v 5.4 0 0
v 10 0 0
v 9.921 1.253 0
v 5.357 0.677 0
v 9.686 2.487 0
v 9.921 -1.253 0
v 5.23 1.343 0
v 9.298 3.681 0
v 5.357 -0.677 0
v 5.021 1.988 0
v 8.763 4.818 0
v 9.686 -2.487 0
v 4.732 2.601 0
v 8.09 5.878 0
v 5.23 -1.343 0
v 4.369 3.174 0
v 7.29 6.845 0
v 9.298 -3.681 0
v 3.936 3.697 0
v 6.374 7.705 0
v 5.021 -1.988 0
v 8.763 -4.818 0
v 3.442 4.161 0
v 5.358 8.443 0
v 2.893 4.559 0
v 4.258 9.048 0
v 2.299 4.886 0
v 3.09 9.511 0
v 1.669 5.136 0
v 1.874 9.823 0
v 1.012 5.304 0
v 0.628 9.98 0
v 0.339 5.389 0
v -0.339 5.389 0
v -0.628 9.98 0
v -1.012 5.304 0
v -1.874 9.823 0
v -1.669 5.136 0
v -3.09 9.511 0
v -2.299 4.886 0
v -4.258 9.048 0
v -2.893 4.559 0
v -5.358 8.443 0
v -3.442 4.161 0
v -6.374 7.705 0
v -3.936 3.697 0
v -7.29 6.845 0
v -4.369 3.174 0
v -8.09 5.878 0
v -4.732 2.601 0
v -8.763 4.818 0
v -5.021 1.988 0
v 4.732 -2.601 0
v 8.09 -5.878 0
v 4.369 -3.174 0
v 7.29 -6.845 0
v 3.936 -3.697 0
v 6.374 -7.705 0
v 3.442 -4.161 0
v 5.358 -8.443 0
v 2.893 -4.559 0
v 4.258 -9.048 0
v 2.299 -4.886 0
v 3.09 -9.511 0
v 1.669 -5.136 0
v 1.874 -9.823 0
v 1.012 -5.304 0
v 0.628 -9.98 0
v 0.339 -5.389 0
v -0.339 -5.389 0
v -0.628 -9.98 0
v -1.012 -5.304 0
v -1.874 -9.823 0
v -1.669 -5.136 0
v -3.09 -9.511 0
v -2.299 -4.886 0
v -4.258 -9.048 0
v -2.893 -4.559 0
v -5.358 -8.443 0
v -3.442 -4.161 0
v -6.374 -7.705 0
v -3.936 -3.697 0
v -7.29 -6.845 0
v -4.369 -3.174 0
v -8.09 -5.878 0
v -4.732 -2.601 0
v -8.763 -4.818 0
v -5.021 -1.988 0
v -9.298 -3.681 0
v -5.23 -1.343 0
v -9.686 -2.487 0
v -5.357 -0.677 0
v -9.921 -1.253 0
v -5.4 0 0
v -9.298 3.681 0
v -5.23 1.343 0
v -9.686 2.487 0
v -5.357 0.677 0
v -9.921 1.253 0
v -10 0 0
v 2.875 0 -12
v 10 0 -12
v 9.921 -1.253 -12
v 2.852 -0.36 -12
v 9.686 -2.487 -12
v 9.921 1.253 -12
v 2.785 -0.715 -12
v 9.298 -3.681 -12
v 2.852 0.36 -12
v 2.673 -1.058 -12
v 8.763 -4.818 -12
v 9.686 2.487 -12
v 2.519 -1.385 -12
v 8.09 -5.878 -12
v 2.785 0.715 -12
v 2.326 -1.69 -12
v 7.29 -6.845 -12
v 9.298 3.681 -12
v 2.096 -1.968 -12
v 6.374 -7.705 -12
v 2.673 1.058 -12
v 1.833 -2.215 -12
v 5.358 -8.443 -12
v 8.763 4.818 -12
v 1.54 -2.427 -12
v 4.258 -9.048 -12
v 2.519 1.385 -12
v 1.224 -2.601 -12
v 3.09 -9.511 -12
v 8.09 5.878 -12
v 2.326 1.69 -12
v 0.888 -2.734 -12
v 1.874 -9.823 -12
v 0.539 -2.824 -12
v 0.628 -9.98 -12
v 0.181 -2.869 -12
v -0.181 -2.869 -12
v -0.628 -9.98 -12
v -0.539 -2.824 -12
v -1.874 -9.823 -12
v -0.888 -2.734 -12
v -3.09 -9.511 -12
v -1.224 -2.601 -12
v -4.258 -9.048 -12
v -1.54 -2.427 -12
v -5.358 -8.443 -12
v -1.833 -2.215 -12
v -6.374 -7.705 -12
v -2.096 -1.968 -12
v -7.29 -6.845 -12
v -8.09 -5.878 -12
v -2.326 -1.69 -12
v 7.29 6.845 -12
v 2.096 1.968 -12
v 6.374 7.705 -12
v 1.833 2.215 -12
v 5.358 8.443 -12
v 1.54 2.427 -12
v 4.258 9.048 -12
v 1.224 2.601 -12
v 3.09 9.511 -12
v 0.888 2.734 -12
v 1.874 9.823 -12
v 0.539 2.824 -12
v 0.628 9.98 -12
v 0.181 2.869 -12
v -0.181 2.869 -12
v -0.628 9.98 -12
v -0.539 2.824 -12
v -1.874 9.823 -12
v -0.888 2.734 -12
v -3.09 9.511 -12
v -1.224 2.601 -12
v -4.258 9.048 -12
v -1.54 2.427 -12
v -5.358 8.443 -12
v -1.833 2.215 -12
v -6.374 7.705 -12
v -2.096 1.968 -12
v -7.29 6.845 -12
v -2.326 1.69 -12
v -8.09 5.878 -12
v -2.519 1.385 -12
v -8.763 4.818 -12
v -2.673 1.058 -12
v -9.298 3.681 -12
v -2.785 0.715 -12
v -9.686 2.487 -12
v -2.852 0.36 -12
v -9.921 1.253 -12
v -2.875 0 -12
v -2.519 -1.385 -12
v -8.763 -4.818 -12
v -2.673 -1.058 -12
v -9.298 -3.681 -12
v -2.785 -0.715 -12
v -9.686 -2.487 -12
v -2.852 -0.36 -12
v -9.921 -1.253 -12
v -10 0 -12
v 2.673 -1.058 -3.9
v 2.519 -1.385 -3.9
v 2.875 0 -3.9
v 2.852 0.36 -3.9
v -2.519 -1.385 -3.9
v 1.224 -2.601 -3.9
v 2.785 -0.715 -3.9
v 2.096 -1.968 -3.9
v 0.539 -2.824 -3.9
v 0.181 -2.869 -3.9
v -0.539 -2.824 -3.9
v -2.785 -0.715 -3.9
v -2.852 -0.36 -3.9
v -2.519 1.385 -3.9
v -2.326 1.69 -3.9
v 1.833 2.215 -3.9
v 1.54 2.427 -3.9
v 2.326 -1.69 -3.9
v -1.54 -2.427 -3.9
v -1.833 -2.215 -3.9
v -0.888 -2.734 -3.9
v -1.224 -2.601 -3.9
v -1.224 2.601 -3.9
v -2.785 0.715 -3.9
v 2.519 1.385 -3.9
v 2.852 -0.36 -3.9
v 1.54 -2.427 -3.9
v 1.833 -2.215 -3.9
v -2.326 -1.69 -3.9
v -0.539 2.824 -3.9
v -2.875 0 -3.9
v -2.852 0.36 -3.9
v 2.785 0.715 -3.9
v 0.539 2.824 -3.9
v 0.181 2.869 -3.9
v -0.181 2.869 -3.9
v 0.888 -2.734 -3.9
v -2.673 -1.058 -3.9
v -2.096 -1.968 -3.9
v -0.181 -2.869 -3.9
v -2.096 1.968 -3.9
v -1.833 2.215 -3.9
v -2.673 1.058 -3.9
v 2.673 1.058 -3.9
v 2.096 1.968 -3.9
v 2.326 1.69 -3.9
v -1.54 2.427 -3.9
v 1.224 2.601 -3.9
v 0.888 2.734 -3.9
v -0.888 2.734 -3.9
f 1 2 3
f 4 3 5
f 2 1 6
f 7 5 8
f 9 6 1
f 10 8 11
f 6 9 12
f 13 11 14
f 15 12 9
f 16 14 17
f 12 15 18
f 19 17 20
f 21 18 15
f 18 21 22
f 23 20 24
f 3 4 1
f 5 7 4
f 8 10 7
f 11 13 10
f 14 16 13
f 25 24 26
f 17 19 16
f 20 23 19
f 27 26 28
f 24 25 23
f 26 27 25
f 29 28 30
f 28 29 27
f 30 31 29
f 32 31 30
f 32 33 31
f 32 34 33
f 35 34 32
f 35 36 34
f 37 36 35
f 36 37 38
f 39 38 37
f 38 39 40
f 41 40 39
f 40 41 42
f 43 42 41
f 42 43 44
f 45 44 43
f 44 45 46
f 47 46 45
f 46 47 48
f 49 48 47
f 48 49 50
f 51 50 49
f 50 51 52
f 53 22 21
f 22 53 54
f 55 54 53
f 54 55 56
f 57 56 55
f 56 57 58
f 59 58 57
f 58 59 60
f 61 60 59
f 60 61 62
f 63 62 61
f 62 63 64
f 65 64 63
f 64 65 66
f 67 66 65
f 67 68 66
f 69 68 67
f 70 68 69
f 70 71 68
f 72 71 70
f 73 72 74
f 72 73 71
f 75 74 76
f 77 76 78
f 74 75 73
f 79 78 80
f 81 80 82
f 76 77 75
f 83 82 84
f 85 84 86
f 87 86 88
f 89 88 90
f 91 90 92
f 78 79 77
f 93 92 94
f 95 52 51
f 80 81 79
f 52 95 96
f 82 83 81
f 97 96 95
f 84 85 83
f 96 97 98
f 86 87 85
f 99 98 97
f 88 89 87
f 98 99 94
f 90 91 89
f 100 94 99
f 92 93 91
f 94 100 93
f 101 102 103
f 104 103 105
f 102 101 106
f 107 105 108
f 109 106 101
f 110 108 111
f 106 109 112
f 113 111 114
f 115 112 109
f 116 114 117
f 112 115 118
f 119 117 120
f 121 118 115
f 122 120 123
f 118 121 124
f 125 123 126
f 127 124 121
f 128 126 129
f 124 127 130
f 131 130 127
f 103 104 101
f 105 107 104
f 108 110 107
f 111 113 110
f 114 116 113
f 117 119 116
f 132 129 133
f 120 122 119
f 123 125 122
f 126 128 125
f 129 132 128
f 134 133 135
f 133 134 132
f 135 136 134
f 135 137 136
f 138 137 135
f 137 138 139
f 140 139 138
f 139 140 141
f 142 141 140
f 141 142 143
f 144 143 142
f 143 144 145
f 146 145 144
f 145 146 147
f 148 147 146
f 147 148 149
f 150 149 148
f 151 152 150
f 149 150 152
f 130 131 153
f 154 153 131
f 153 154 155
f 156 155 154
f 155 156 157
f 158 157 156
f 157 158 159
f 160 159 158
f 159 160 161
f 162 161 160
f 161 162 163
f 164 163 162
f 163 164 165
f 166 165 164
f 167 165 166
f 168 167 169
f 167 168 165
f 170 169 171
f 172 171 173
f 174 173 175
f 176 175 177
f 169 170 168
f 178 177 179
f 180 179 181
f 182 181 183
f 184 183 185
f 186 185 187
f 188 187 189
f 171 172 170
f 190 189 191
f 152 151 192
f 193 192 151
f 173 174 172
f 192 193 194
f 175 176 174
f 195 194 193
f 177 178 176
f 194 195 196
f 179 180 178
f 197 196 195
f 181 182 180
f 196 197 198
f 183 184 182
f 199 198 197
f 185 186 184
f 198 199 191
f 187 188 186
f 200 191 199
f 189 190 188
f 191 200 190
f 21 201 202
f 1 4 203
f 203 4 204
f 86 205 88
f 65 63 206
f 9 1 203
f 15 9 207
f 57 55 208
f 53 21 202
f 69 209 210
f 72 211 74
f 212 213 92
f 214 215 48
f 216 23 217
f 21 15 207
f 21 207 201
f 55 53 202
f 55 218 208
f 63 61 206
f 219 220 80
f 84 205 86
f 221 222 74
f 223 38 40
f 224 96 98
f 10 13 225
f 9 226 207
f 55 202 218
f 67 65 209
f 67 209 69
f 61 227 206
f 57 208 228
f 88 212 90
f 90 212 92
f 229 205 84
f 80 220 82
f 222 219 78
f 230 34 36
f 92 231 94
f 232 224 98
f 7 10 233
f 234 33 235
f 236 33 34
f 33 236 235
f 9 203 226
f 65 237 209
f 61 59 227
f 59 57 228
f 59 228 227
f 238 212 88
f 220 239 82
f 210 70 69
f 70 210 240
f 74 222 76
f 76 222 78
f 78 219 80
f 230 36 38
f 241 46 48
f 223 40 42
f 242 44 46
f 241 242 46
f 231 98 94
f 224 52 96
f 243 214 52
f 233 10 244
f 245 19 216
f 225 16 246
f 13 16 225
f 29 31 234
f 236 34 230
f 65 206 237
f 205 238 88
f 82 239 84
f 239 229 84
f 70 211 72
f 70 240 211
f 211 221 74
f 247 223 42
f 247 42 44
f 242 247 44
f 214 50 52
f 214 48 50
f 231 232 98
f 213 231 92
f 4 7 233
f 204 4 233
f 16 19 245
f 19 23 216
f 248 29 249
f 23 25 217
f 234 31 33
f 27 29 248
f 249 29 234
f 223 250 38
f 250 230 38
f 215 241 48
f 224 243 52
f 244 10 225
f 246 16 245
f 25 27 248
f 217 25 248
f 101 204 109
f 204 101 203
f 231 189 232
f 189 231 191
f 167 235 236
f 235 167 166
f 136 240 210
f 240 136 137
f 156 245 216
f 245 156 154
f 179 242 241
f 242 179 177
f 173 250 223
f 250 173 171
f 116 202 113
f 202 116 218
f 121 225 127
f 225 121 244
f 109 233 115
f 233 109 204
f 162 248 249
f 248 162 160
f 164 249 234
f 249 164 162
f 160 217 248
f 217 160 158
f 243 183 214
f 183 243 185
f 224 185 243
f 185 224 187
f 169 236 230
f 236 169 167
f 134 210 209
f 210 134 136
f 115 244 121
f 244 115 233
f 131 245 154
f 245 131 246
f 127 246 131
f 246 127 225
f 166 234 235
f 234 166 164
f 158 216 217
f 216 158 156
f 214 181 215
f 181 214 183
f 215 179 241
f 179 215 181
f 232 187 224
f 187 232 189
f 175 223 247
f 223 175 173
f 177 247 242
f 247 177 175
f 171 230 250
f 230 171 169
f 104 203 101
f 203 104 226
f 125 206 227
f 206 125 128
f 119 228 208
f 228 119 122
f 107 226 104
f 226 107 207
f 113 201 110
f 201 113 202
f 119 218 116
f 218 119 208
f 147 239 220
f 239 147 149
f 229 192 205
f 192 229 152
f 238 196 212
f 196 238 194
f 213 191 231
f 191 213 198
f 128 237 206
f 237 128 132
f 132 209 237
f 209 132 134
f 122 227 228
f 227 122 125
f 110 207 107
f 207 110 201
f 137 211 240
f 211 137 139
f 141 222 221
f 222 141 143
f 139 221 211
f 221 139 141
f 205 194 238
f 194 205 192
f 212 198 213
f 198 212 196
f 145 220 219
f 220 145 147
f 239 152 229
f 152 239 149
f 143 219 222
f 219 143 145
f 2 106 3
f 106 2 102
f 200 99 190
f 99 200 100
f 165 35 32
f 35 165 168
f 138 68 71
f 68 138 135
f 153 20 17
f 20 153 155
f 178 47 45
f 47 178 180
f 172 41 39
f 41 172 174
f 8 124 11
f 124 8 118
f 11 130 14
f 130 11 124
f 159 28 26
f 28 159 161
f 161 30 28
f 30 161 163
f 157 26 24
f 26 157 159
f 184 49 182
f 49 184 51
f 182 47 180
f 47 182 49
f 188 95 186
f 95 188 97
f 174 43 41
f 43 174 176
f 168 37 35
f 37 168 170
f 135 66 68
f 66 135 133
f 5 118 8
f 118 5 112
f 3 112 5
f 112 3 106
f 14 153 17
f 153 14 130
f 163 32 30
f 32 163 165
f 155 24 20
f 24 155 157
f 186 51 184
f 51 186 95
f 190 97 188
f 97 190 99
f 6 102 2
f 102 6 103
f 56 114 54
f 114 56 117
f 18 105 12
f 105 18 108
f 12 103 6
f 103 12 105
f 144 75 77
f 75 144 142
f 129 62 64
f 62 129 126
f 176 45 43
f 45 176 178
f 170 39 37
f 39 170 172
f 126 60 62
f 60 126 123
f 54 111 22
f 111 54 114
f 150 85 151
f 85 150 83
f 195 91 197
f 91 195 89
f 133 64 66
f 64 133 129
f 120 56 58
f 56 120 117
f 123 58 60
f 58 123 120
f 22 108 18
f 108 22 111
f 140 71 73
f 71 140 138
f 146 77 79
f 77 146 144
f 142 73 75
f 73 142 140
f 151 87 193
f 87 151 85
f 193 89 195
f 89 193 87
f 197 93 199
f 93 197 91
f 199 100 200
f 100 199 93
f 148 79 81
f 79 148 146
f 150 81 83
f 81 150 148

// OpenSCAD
$fn = 50;


difference() {
	union() {
		translate(v = [0, 0, -12.0000000000]) {
			cylinder(h = 12, r = 10.0000000000);
		}
		cylinder(h = 0, r = 16.0000000000);
	}
	union() {
		translate(v = [0, 0, 0]) {
			rotate(a = [0, 0, 0]) {
				difference() {
					union() {
						#translate(v = [0, 0, -12.0000000000]) {
							cylinder(h = 12, r = 2.6000000000);
						}
						#translate(v = [0, 0, -3.9000000000]) {
							cylinder(h = 3.9000000000, r = 10.0000000000, r1 = 2.8750000000, r2 = 5.4000000000);
						}
						#translate(v = [0, 0, -12.0000000000]) {
							cylinder(h = 12, r = 2.8750000000);
						}
						#translate(v = [0, 0, -12.0000000000]) {
							cylinder(h = 12, r = 2.6000000000);
						}
					}
					union();
				}
			}
		}
	}
}
